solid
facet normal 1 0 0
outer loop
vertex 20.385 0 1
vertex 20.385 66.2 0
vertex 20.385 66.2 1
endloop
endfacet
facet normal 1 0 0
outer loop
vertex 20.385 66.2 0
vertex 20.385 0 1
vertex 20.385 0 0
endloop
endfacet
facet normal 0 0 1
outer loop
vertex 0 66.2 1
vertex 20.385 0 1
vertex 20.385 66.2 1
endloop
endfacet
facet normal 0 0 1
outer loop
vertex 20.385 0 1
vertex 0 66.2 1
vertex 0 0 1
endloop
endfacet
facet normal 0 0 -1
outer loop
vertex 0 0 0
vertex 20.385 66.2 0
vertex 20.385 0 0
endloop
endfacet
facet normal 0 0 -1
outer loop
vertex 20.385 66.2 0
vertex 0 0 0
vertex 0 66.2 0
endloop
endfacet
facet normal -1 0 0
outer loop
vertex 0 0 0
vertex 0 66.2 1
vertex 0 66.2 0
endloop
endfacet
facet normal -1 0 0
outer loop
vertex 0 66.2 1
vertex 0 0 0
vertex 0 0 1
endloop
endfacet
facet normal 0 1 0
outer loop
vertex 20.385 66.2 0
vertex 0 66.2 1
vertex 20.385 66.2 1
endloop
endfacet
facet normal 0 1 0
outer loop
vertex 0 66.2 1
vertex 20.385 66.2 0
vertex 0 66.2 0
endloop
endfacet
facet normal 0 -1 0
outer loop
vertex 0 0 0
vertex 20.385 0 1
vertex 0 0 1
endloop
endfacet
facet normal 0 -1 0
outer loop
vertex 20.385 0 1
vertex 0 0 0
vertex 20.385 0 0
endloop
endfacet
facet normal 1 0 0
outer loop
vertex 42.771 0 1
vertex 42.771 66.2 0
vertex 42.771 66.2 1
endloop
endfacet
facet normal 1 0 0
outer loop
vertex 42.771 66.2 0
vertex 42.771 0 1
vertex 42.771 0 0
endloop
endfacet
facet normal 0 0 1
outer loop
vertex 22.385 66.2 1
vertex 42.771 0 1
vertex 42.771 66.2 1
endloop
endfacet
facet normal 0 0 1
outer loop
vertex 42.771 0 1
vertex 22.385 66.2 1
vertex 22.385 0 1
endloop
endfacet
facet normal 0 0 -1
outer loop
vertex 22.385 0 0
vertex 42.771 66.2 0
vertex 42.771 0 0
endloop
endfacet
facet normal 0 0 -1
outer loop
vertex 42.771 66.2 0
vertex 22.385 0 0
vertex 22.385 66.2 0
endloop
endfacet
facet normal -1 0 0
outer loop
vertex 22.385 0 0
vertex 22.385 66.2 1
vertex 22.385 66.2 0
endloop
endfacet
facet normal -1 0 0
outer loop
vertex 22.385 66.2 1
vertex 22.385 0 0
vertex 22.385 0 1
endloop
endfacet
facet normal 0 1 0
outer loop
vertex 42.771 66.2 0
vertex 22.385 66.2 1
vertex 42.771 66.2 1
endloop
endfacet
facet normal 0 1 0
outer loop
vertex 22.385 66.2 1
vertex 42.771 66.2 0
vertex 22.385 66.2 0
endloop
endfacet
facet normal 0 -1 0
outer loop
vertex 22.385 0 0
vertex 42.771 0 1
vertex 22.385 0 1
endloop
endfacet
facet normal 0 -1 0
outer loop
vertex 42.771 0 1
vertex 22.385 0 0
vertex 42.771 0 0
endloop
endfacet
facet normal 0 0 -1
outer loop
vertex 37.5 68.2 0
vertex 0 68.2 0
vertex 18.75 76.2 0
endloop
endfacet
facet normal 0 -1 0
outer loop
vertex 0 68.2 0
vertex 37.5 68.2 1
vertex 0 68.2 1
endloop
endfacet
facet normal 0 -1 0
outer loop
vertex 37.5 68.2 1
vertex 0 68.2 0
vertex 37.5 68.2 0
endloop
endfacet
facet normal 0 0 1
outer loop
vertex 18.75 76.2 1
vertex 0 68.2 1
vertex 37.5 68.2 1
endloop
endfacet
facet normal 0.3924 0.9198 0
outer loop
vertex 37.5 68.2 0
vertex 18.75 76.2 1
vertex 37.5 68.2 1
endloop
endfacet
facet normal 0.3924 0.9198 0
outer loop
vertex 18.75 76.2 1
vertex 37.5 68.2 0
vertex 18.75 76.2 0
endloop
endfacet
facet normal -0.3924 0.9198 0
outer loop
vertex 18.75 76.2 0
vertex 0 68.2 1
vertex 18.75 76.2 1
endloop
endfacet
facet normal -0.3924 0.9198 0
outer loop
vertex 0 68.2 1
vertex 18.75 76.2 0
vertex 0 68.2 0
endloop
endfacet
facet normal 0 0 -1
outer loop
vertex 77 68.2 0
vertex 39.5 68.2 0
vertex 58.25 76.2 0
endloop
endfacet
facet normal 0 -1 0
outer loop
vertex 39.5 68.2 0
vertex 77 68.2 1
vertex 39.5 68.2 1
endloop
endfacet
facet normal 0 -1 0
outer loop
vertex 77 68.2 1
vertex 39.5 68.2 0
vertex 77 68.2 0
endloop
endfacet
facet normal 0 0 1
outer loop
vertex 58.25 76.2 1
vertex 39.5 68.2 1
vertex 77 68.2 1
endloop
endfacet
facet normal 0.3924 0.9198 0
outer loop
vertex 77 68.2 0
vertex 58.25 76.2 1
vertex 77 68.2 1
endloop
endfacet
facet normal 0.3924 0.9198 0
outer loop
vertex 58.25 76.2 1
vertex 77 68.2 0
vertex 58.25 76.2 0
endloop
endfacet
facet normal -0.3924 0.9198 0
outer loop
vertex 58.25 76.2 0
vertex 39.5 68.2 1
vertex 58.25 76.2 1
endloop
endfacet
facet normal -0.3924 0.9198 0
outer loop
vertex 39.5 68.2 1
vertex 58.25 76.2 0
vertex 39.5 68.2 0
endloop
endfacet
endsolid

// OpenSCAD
/*
 * PROMPT: H0 scale (1:87) single-car garage gable roof assembly: two flat slope panels (20.4 mm x 66.2 mm x 1 mm each) and two triangular gable end panels (37.5 mm base x 8.0 mm rise x 1 mm thick), plus a 3D assembled roof polyhedron with 1.5 mm overhang on all sides.
 */

$fn = 32;

panel_t    = 1.0;

bld_w      = 34.5;
bld_h      = 27.6;
bld_d      = 63.2;
roof_oh    = 1.5;
roof_rise  = 8.0;

rw         = bld_w + 2 * roof_oh;   // 37.5
rd         = bld_d + 2 * roof_oh;   // 66.2
slope_w    = sqrt((rw / 2) * (rw / 2) + roof_rise * roof_rise); // ≈ 20.4

module roof_slope() {
    cube([slope_w, rd, panel_t]);
}

module roof_gable() {
    linear_extrude(panel_t)
        polygon([[0, 0], [rw, 0], [rw / 2, roof_rise]]);
}

module roof_assembled() {
    translate([-roof_oh, -roof_oh, bld_h])
        polyhedron(
            points = [
                [0,      0,          0],          // 0 front-left eave
                [rw,     0,          0],          // 1 front-right eave
                [rw,     rd,         0],          // 2 back-right eave
                [0,      rd,         0],          // 3 back-left eave
                [rw / 2, 0,          roof_rise],  // 4 front ridge
                [rw / 2, rd,         roof_rise]   // 5 back ridge
            ],
            faces = [
                [0, 3, 2, 1],   // eave soffit (bottom)
                [0, 1, 4],      // front gable
                [3, 5, 2],      // back gable
                [1, 2, 5, 4],   // right slope
                [0, 4, 5, 3]    // left slope
            ]
        );
}

// Print layout: two slope panels side by side, two gable triangles below
roof_slope();
translate([slope_w + 2, 0, 0]) roof_slope();
translate([0, rd + 2, 0]) roof_gable();
translate([rw + 2, rd + 2, 0]) roof_gable();
